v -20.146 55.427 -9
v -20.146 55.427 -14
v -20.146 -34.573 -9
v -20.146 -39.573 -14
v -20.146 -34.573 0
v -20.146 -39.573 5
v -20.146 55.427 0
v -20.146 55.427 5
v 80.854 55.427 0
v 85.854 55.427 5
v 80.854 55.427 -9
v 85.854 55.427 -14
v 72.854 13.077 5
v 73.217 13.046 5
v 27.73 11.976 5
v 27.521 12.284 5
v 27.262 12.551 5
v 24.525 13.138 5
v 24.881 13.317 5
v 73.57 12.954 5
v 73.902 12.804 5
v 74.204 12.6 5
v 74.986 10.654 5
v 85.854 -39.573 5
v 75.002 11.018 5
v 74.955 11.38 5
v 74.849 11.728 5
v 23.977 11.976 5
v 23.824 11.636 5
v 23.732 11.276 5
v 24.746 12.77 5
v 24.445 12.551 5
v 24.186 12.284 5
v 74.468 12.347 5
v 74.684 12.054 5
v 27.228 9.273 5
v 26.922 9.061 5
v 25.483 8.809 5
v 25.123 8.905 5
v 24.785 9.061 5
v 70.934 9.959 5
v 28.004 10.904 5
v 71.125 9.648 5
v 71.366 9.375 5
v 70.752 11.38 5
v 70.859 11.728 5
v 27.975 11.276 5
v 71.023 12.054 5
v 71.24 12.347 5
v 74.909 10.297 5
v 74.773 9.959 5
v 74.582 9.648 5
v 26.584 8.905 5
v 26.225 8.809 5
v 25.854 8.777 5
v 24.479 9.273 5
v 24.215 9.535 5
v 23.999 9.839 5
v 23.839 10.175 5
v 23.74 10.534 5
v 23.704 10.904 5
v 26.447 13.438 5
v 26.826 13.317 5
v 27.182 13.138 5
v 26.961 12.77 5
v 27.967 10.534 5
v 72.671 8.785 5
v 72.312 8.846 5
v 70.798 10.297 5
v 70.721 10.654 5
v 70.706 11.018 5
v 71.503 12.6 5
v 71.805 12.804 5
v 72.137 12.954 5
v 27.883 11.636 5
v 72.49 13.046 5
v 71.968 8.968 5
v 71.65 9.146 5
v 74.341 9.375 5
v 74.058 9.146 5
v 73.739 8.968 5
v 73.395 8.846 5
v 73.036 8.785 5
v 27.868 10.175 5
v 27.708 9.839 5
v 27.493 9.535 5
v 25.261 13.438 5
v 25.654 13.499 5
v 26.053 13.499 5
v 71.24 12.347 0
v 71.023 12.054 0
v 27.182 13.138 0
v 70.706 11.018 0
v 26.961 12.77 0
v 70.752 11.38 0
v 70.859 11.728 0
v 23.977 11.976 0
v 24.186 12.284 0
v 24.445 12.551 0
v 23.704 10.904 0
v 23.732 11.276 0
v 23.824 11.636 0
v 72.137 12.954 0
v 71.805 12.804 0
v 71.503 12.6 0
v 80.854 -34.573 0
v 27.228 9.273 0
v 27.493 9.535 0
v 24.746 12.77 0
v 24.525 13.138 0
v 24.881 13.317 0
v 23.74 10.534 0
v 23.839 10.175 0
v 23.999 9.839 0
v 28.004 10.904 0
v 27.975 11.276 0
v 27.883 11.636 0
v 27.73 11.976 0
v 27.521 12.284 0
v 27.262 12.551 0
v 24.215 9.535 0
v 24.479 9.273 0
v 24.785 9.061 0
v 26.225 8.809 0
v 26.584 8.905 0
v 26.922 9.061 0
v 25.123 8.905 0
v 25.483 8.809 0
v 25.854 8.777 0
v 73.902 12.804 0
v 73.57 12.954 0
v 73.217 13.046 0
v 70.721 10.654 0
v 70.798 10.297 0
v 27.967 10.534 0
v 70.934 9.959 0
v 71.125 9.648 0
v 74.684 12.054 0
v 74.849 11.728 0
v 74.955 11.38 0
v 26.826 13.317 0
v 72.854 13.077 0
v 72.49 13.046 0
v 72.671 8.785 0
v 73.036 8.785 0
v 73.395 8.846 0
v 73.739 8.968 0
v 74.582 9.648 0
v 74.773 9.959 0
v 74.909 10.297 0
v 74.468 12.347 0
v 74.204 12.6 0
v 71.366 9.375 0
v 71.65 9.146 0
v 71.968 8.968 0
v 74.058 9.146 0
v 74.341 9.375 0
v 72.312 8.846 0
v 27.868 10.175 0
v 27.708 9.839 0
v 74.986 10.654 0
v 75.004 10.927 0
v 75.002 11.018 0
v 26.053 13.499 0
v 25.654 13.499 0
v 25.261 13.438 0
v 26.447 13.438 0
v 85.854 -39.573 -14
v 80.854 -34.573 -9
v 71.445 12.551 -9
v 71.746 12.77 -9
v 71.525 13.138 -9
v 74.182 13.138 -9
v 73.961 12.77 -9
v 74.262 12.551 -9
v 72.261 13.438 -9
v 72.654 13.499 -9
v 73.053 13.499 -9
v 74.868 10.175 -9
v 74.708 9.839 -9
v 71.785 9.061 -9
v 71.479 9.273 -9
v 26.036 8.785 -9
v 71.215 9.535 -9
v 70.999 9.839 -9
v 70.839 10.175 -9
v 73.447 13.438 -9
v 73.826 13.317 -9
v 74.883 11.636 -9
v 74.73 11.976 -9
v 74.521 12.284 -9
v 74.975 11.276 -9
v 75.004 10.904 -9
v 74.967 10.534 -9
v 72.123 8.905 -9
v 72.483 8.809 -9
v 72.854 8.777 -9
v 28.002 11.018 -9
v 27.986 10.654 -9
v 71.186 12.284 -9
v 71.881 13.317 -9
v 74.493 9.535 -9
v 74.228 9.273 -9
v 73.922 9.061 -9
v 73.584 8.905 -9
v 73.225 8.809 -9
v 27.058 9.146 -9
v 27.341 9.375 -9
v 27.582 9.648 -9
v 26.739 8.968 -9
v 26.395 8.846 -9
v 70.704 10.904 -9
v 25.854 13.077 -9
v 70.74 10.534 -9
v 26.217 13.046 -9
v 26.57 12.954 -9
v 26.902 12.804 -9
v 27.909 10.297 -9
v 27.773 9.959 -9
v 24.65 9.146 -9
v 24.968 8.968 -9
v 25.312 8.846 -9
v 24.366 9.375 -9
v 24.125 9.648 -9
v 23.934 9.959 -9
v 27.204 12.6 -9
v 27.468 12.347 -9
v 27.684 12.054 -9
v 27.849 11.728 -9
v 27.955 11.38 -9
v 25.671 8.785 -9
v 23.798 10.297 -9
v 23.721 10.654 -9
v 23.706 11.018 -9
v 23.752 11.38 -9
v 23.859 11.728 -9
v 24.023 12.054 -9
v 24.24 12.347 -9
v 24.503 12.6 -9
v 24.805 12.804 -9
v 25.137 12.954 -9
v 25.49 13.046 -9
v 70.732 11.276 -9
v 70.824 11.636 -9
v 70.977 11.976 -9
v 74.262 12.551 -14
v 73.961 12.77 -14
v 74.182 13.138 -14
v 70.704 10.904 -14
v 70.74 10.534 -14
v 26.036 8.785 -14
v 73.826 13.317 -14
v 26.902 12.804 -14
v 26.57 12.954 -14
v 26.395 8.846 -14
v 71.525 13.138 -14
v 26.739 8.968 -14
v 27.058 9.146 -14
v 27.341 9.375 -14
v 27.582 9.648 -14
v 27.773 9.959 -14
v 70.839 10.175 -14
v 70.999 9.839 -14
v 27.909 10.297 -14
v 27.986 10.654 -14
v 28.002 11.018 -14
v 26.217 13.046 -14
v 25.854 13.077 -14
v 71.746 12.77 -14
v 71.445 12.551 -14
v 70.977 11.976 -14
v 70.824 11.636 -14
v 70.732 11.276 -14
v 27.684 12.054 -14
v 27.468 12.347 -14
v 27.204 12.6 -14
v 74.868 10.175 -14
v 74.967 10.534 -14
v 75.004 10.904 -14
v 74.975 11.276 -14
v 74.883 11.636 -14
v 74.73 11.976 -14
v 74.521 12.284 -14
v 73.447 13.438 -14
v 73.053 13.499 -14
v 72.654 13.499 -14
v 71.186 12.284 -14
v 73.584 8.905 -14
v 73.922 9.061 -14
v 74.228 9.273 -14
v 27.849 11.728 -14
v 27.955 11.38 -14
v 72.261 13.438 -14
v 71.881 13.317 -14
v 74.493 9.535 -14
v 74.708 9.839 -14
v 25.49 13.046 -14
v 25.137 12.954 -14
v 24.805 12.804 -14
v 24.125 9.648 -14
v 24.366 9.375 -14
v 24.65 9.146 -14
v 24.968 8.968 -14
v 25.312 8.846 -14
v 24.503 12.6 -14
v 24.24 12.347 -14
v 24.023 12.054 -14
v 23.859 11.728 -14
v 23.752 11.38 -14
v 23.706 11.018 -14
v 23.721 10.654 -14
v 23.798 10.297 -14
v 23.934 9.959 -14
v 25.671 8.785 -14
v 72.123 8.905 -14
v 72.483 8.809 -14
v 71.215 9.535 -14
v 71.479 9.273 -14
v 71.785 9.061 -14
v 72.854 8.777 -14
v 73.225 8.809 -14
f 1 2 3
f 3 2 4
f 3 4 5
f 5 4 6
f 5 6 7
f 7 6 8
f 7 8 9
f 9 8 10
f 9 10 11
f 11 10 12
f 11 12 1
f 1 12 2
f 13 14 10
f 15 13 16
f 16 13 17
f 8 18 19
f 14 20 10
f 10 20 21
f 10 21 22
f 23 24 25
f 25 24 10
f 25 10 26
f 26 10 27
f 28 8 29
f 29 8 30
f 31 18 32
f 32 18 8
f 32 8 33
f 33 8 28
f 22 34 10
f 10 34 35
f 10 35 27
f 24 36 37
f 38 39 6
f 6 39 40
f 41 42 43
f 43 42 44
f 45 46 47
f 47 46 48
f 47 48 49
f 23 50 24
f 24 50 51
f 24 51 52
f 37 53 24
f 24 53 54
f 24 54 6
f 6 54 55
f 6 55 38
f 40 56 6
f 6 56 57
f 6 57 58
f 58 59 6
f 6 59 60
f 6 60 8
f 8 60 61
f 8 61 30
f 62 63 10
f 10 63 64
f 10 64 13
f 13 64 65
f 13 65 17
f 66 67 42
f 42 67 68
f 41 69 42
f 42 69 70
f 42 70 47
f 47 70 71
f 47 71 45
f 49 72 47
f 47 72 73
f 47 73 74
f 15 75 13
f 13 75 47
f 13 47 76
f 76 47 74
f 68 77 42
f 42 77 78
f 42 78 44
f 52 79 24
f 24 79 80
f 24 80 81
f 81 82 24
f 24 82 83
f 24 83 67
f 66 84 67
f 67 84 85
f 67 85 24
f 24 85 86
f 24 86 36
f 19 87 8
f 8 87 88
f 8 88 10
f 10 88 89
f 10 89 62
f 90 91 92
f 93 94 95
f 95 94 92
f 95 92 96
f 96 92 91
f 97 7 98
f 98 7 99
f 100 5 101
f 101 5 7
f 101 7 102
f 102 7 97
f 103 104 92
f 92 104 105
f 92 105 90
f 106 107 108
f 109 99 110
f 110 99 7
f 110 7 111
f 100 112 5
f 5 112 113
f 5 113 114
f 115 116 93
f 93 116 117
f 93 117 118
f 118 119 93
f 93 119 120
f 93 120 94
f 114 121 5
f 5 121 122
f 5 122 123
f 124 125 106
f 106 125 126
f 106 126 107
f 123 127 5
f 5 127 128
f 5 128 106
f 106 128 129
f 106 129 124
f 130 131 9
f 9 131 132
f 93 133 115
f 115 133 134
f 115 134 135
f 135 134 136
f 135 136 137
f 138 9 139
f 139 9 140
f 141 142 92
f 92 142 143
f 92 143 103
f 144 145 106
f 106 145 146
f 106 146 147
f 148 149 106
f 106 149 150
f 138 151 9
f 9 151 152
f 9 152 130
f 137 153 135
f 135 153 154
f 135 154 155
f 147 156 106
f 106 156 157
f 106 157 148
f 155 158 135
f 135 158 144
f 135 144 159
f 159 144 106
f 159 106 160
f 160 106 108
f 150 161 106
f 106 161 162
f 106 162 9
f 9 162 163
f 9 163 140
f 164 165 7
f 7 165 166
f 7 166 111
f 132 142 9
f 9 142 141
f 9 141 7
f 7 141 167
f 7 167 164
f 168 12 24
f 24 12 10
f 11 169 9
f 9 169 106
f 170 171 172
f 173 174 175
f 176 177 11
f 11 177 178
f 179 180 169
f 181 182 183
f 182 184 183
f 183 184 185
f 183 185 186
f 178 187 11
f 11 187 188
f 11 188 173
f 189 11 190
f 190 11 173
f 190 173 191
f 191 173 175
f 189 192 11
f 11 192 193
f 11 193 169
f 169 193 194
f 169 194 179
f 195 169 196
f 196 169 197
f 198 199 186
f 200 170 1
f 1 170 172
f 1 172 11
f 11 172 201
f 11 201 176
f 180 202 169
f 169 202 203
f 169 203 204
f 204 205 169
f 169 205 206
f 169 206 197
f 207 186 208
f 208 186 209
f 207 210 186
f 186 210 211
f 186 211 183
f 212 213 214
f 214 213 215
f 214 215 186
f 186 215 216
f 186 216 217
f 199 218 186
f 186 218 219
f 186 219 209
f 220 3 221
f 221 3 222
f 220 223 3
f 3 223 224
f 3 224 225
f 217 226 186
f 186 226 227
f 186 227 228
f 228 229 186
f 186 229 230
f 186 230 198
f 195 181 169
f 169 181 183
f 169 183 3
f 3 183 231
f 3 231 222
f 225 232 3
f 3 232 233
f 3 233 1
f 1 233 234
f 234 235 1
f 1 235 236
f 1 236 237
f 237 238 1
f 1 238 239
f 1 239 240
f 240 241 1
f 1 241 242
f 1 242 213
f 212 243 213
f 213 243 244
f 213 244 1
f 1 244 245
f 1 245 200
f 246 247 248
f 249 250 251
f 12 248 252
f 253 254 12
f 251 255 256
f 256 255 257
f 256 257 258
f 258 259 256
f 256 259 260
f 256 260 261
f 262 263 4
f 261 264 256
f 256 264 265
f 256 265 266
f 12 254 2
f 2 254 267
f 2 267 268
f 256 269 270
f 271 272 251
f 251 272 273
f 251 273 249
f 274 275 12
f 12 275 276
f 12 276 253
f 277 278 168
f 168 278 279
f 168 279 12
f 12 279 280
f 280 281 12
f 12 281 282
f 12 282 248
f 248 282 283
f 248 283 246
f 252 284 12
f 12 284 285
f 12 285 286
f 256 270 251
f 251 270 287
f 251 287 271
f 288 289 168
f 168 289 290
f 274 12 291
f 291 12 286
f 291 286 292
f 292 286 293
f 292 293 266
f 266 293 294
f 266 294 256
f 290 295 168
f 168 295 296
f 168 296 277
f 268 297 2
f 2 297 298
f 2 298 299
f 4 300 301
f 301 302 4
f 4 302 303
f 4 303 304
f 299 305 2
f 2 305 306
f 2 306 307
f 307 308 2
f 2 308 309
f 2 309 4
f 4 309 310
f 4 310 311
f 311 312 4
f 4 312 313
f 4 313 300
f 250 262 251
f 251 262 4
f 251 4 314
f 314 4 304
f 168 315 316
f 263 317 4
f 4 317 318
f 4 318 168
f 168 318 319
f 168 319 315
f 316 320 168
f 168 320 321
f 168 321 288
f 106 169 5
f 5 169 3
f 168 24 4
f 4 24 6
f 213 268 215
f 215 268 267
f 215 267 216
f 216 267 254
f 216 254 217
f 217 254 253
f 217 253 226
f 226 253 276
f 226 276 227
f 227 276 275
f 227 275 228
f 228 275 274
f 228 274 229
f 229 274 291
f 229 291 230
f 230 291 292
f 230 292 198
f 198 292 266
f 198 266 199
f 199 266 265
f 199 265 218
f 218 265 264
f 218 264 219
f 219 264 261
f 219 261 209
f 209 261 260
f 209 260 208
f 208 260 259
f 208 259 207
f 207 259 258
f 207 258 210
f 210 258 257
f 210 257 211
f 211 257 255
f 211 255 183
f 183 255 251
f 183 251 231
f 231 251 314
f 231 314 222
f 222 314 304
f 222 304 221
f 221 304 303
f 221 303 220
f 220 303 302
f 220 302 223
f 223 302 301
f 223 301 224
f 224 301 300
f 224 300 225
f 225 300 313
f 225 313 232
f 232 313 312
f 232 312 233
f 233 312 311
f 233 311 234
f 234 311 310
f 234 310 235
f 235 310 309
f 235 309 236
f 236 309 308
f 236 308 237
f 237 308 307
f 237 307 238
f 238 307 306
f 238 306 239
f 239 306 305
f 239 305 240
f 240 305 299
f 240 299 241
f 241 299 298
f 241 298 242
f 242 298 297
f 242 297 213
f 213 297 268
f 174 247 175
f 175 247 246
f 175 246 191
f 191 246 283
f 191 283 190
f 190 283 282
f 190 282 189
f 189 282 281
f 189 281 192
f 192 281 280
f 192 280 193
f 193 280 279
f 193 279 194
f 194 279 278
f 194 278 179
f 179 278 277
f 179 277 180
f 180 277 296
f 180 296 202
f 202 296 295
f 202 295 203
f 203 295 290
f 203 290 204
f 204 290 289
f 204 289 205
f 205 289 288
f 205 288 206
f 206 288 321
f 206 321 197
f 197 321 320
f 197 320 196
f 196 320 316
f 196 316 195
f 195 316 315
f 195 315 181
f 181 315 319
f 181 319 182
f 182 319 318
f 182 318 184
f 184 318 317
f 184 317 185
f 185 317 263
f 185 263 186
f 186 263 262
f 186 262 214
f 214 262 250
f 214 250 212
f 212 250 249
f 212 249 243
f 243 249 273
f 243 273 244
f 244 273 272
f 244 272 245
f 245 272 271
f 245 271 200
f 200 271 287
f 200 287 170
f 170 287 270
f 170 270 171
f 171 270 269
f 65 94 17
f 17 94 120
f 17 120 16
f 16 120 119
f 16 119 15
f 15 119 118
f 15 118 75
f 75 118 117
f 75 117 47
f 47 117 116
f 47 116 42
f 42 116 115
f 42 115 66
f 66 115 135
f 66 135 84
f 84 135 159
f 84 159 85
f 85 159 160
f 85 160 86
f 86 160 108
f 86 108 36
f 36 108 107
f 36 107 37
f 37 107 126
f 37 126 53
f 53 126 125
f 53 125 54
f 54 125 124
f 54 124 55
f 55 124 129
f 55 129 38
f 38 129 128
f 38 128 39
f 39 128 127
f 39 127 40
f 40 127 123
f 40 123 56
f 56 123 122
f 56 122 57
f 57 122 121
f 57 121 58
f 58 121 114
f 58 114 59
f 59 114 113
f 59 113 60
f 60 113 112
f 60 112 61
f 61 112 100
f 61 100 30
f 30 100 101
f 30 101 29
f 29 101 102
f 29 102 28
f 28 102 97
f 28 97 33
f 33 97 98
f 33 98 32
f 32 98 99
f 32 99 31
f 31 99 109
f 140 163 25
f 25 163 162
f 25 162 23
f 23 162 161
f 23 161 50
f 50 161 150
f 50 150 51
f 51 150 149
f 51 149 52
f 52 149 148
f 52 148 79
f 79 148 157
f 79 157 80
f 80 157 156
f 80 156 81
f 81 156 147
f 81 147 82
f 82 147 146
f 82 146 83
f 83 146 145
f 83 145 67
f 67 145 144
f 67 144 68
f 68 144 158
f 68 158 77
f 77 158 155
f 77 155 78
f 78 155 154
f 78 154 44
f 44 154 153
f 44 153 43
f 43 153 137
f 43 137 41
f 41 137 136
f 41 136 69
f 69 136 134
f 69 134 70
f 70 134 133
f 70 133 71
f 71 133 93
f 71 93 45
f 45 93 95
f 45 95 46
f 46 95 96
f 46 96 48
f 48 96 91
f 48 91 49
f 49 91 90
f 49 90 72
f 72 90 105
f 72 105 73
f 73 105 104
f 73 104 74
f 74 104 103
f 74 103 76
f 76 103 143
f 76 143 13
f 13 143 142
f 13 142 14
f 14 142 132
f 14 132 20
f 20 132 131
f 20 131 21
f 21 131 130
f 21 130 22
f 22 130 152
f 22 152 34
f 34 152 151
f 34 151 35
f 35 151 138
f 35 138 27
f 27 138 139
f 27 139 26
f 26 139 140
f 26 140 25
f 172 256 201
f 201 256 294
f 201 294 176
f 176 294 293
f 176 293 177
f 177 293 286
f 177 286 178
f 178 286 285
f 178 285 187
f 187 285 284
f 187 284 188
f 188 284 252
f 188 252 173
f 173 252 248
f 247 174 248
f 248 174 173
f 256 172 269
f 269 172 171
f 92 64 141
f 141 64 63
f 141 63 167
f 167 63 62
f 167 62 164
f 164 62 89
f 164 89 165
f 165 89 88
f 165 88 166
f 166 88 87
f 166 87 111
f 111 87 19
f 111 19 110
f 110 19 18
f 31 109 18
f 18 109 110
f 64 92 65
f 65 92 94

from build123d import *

# Parameters (mm, degrees)
SKETCH1_W           = 101
SKETCH1_H           = 90
BOSS_EXTRUDE1_DEPTH = 5
SKETCH2_W           = 14
SKETCH2_H           = 90
BOSS_EXTRUDE2_DEPTH = 5
SKETCH3_W           = 106
SKETCH3_H           = 90
BOSS_EXTRUDE3_DEPTH = 5
SKETCH4_W           = 106
SKETCH4_H           = 19
BOSS_EXTRUDE4_DEPTH = 5
SKETCH5_R           = 2.15
CUT_EXTRUDE1_DEPTH  = 20
CUT_EXTRUDE2_DEPTH  = 10
CUT_EXTRUDE3_DEPTH  = 10


with BuildPart() as part:
    # Sketch1 → Boss-Extrude1 (new body)
    with BuildSketch(Plane.XY):
        with Locations((30.353658537, 10.426829268)):
            Rectangle(SKETCH1_W, SKETCH1_H)
    extrude(amount=BOSS_EXTRUDE1_DEPTH)

    # Sketch2 → Boss-Extrude2 (add)
    with BuildSketch(Plane(origin=(80.853658537, 0, 0), x_dir=(0, 0, -1), z_dir=(1, 0, 0))):
        with Locations((2, 10.426829268)):
            Rectangle(SKETCH2_W, SKETCH2_H)
    extrude(amount=BOSS_EXTRUDE2_DEPTH)

    # Sketch3 → Boss-Extrude3 (add)
    with BuildSketch(Plane(origin=(0, 0, -9), x_dir=(-1, 0, 0), z_dir=(0, 0, -1))):
        with Locations((-32.853658537, 10.426829268)):
            Rectangle(SKETCH3_W, SKETCH3_H)
    extrude(amount=BOSS_EXTRUDE3_DEPTH)

    # Sketch4 → Boss-Extrude4 (add)
    with BuildSketch(Plane.XZ.offset(34.573170732)):
        with Locations((32.853658537, -4.5)):
            Rectangle(SKETCH4_W, SKETCH4_H)
    extrude(amount=BOSS_EXTRUDE4_DEPTH)

    # Sketch5 → Cut-Extrude1 (cut, through all)
    with BuildSketch(Plane(origin=(0, 0, -14), x_dir=(-1, 0, 0), z_dir=(0, 0, -1))):
        with Locations((-72.853658537, 10.926829268)):
            Circle(SKETCH5_R)
        with Locations((-25.853658537, 10.926829268)):
            Circle(SKETCH5_R)
    extrude(amount=-CUT_EXTRUDE1_DEPTH, mode=Mode.SUBTRACT)

    # Sketch6 → Cut-Extrude2 (cut)
    with BuildSketch(Plane(origin=(0, 0, -14), x_dir=(-1, 0, 0), z_dir=(0, 0, -1))):
        with BuildLine():
            Line((-72.853658537, 10.926829268), (-71.524860303, 13.138320904))
            ThreePointArc((-71.524860303, 13.138320904), (-72.853658537, 13.506829268), (-74.18245677, 13.138320904))
            Line((-74.18245677, 13.138320904), (-72.853658537, 10.926829268))
        make_face()
    extrude(amount=-CUT_EXTRUDE2_DEPTH, mode=Mode.SUBTRACT)

    # Sketch7 → Cut-Extrude3 (cut)
    with BuildSketch(Plane.XY.offset(5)):
        with BuildLine():
            Line((25.853658537, 10.926829268), (27.18245677, 13.138320904))
            ThreePointArc((27.18245677, 13.138320904), (25.853658537, 13.506829268), (24.524860303, 13.138320904))
            Line((24.524860303, 13.138320904), (25.853658537, 10.926829268))
        make_face()
    extrude(amount=-CUT_EXTRUDE3_DEPTH, mode=Mode.SUBTRACT)


solid = part.part
